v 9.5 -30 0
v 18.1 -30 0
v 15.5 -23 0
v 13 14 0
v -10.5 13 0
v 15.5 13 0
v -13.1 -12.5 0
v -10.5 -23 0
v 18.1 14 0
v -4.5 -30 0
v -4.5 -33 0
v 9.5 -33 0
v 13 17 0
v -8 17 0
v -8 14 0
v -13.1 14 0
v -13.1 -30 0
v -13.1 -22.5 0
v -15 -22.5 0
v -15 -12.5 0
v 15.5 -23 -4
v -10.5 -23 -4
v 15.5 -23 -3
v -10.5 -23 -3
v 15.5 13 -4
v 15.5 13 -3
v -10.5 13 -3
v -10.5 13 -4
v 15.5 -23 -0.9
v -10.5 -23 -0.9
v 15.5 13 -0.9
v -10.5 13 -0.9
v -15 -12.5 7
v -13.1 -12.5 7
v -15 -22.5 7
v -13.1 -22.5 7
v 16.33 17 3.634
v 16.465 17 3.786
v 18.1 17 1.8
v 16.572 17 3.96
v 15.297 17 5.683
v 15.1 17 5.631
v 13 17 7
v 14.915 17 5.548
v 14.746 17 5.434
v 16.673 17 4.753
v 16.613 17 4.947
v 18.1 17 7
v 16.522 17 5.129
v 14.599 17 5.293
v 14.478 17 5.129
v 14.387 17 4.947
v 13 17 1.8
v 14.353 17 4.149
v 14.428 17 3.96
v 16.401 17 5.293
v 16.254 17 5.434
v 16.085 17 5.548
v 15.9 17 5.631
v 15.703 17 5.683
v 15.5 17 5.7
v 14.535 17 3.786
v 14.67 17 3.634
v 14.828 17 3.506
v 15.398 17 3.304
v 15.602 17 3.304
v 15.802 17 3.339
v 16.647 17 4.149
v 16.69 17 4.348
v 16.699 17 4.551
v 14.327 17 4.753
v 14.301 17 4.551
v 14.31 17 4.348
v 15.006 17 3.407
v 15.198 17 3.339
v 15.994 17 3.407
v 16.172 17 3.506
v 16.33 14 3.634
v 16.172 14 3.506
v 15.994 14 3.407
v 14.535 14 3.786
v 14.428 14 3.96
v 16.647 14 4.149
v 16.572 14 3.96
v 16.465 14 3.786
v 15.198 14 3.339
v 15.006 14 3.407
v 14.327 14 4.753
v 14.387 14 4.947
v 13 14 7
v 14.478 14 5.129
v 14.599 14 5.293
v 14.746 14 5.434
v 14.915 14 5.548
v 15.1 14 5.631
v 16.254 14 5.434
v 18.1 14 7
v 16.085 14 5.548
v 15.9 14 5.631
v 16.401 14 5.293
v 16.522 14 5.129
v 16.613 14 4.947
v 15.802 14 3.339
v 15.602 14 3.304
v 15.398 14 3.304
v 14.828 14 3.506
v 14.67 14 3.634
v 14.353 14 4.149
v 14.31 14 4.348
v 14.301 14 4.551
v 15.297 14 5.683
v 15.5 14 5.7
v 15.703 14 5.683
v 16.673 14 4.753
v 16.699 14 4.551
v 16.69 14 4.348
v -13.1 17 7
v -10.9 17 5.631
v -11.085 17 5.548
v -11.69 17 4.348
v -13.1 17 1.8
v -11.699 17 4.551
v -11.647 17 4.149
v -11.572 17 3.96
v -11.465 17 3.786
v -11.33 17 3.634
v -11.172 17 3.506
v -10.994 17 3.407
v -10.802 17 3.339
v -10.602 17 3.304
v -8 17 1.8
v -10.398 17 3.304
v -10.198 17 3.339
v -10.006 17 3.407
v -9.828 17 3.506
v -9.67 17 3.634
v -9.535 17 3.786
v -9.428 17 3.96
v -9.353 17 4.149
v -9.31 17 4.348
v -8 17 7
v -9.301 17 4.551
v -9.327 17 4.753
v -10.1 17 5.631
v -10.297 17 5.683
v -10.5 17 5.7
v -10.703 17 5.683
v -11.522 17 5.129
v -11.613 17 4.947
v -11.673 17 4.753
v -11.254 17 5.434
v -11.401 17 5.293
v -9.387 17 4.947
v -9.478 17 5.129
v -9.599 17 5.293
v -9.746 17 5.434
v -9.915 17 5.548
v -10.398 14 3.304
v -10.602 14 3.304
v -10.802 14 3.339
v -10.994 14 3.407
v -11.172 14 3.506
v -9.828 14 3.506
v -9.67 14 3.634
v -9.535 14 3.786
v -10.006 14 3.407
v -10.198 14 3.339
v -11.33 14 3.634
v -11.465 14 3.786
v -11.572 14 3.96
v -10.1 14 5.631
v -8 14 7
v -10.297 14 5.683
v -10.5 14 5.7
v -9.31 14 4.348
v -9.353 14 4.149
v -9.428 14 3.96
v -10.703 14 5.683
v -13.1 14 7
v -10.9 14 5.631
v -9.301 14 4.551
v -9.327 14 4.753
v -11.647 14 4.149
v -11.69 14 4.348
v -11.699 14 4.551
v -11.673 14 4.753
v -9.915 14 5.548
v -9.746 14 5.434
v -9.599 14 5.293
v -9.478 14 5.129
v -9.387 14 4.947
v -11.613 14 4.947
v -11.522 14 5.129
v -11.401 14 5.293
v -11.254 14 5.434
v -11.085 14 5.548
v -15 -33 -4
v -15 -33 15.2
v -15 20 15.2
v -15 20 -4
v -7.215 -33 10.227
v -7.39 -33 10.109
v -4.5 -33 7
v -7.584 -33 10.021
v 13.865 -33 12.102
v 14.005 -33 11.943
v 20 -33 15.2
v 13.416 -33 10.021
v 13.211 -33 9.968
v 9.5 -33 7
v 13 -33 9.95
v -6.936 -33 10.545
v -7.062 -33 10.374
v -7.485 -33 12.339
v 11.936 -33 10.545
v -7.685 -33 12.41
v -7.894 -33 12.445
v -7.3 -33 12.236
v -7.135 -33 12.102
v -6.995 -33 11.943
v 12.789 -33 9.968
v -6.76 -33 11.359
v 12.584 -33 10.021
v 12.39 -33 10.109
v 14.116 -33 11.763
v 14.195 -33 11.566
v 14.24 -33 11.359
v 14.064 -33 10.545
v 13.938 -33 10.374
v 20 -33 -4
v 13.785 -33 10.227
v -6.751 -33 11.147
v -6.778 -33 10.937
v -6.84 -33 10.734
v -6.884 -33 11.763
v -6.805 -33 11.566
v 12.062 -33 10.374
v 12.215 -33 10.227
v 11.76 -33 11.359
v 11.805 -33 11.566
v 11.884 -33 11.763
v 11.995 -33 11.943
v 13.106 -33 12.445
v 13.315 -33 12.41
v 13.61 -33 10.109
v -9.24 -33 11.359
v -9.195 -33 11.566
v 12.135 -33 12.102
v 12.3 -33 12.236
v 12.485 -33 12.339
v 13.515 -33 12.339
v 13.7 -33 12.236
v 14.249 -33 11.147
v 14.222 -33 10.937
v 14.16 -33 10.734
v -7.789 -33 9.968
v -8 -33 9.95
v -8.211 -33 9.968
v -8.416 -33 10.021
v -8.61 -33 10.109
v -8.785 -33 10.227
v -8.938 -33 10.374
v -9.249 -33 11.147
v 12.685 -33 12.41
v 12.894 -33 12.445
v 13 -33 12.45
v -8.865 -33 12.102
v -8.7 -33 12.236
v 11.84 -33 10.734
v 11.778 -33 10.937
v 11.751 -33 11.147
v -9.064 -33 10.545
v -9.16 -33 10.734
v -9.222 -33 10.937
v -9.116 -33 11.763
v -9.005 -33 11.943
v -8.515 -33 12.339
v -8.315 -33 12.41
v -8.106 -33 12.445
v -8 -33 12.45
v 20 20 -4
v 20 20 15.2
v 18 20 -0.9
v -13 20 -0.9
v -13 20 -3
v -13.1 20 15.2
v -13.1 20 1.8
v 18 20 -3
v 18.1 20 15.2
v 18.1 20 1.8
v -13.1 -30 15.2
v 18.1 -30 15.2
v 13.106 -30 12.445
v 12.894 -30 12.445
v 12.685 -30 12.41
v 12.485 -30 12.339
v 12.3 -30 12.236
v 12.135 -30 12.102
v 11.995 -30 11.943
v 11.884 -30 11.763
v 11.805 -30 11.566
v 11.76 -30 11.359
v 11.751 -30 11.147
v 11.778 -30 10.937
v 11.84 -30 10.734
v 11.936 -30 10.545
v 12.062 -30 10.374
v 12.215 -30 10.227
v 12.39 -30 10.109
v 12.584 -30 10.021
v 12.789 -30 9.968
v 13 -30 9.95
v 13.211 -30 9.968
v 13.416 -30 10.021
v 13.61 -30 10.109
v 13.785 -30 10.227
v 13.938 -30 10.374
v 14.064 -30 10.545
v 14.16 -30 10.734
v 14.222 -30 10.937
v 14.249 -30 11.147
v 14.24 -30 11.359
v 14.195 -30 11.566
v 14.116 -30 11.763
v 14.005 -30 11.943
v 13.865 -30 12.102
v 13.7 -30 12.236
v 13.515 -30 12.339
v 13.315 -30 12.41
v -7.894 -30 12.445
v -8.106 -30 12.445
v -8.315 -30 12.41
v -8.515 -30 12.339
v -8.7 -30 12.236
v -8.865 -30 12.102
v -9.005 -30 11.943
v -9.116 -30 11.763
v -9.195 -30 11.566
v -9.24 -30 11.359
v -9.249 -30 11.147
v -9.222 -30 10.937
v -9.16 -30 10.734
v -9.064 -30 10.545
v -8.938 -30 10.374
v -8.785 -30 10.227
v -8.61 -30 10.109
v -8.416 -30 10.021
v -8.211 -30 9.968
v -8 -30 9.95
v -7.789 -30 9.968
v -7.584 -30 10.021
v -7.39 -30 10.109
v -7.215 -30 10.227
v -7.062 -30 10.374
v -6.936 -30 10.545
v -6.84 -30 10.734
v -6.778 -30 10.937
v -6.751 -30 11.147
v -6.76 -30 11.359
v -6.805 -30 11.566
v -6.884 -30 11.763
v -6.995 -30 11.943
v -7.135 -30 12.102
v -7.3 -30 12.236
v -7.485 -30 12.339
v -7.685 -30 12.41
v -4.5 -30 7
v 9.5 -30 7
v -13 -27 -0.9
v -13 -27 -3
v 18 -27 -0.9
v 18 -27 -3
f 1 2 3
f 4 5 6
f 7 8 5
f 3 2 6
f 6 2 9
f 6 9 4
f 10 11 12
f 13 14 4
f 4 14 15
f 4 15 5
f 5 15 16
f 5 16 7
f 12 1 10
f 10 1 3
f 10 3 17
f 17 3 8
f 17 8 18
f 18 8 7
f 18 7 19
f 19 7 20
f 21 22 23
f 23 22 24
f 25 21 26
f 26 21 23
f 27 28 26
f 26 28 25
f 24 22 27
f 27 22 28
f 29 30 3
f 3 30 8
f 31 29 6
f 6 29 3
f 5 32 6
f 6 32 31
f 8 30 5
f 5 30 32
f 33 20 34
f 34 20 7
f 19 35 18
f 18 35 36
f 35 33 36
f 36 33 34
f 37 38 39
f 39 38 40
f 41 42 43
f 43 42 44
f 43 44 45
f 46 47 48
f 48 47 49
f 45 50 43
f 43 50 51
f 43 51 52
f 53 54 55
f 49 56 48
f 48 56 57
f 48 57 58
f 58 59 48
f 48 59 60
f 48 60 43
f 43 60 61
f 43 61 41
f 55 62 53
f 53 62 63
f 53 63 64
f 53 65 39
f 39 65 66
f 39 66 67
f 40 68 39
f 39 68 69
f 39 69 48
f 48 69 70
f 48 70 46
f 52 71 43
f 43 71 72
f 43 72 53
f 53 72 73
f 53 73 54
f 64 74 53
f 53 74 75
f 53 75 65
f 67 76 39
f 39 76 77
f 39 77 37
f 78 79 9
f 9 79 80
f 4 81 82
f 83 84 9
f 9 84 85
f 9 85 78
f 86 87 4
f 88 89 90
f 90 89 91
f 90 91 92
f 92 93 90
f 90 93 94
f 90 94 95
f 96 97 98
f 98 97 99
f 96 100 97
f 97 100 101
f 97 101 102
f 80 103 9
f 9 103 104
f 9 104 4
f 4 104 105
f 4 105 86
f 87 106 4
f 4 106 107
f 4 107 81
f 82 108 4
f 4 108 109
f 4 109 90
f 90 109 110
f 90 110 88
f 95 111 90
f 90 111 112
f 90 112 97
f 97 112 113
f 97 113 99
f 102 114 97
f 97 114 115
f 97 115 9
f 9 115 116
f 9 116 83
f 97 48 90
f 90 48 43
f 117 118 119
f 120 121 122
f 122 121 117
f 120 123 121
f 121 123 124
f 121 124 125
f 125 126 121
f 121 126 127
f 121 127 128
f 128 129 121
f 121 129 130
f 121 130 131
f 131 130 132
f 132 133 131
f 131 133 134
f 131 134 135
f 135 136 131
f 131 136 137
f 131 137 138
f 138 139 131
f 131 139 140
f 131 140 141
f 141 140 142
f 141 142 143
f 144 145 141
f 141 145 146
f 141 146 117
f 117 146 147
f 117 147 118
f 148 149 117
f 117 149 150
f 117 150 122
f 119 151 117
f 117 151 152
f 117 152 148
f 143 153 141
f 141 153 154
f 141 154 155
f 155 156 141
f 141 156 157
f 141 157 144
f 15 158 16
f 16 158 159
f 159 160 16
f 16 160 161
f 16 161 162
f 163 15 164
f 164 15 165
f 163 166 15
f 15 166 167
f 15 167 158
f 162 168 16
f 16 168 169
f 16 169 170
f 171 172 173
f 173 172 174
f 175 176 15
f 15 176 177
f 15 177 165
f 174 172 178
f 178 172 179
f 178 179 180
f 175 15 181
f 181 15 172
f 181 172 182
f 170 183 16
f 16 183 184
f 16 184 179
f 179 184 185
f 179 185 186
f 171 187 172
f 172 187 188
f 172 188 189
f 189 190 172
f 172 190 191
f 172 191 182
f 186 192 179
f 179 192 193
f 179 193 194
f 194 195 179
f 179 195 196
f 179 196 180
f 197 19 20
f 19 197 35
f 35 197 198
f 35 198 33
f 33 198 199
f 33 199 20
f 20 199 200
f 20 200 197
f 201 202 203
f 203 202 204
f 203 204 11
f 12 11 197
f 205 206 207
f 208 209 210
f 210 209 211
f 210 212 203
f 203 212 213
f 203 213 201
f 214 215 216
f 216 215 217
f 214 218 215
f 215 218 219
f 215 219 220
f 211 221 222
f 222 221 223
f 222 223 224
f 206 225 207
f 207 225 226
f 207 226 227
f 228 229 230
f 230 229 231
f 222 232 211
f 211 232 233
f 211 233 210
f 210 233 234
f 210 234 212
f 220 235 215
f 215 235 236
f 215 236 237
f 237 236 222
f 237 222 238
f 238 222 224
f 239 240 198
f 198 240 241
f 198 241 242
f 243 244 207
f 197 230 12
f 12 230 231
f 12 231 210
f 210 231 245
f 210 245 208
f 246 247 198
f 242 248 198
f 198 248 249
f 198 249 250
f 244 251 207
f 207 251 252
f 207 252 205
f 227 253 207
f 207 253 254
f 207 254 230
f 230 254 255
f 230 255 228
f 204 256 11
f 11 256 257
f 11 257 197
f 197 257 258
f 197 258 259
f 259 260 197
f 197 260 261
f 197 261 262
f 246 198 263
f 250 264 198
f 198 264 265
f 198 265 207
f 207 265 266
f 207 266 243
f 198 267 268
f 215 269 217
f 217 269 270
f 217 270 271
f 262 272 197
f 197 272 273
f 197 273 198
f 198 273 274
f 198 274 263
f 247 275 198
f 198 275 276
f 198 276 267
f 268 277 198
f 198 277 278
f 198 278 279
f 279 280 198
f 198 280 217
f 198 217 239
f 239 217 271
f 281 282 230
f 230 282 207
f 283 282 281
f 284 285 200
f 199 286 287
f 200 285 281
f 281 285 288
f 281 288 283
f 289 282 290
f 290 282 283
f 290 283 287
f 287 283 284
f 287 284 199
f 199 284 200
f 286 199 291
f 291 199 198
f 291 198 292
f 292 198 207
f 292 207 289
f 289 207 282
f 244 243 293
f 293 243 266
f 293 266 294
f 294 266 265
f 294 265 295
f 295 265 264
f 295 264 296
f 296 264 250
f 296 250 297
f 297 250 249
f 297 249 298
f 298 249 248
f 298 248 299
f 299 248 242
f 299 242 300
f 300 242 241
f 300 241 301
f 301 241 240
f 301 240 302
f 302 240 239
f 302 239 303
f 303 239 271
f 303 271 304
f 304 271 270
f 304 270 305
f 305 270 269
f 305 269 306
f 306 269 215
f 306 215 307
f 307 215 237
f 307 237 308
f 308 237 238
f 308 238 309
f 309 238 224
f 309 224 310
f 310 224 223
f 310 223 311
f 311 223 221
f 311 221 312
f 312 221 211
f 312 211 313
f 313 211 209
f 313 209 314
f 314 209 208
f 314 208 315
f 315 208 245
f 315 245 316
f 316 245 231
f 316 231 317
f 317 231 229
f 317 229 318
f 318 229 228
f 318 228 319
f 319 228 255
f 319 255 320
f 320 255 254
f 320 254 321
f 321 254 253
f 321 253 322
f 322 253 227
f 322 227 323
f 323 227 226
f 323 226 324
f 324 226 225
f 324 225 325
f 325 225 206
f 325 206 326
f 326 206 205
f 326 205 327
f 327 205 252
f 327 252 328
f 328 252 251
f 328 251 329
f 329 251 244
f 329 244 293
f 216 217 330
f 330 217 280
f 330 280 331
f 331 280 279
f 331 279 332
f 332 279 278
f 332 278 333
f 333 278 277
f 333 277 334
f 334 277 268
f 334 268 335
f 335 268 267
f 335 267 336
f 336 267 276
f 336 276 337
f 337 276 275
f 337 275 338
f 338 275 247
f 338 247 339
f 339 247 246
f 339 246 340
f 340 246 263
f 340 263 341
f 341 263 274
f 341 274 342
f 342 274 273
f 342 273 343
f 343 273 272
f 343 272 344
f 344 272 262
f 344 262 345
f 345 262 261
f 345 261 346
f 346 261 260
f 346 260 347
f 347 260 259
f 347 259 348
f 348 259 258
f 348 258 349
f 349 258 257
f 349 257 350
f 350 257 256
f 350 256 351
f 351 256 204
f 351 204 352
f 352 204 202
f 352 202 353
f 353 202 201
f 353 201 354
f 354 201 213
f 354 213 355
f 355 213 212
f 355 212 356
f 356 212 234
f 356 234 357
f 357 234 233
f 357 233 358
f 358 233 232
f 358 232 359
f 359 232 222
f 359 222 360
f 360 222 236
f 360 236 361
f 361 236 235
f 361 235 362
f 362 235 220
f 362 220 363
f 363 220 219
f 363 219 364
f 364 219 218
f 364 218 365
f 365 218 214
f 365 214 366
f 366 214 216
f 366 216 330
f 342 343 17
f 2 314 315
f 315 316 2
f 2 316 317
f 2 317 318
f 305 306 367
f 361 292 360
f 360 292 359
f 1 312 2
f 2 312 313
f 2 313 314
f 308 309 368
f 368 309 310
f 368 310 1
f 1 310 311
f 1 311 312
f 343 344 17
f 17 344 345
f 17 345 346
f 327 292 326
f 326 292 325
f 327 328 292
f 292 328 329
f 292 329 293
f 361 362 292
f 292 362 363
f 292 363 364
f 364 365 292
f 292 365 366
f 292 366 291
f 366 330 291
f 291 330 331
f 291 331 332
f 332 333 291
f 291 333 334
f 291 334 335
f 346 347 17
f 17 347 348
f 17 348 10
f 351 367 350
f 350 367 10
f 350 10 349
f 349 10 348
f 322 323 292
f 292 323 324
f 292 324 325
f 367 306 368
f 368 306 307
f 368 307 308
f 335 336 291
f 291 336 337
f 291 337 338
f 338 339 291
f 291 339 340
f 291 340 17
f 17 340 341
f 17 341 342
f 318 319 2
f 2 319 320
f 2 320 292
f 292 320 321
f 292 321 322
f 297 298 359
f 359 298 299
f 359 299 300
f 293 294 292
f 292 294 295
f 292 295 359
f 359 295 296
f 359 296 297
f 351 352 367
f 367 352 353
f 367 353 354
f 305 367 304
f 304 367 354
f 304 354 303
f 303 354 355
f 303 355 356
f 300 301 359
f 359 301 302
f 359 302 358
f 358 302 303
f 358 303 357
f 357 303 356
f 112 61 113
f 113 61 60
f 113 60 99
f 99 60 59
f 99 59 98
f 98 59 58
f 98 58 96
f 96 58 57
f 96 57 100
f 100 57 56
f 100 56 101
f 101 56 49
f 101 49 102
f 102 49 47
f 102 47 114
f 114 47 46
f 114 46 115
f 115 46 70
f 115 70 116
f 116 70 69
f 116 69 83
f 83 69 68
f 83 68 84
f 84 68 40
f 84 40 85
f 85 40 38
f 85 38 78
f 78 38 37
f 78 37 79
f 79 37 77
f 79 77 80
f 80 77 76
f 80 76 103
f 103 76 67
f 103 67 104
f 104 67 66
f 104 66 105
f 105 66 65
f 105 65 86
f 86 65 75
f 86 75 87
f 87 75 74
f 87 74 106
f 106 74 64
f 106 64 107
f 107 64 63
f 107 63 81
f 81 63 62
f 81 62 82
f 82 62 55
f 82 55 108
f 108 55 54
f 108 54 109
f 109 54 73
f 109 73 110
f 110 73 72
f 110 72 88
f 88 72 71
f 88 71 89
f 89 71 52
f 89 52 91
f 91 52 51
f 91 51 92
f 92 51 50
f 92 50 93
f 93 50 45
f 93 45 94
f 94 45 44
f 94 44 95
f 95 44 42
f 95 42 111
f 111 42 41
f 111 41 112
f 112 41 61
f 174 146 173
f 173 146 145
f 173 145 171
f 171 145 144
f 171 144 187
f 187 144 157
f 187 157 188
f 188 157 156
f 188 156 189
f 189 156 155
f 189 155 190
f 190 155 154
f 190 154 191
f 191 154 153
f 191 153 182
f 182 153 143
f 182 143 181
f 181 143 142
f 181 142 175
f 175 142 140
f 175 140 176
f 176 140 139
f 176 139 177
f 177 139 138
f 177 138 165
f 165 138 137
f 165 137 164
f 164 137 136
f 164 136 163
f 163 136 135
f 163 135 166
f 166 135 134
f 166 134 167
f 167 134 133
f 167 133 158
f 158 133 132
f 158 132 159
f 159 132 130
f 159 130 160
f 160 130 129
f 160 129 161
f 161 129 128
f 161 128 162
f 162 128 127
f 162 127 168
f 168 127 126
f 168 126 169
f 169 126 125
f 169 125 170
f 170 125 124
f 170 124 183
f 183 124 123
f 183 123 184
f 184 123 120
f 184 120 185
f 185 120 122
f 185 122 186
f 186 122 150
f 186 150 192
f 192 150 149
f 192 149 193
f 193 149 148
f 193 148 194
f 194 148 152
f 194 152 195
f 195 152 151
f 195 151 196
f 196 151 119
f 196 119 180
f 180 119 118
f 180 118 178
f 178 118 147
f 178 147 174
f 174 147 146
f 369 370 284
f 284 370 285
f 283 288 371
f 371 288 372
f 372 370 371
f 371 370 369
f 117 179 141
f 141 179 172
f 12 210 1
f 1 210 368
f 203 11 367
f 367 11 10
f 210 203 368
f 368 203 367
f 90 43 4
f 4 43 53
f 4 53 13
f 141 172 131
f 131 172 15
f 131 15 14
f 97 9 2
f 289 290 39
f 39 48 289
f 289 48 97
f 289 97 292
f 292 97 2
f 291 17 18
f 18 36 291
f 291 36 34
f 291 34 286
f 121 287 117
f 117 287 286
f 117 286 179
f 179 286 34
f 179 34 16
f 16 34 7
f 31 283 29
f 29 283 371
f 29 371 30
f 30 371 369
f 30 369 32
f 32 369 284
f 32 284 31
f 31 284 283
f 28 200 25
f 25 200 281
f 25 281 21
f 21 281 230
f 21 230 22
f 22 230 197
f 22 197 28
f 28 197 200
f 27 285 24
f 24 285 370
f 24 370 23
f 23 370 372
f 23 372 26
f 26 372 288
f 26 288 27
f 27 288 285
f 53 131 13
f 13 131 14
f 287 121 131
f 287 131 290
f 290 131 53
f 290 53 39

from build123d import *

# Parameters (mm, degrees)
SKETCH_1_W           = 35
SKETCH_1_H           = 53
EXTRUDE_1_DEPTH      = 2
SKETCH_2_W           = 2
SKETCH_2_H           = 53
EXTRUDE_2_DEPTH      = 13.2
SKETCH_3_W           = 31
SKETCH_3_H           = 3
EXTRUDE_3_DEPTH      = 7.2
SKETCH_4_W           = 31
SKETCH_4_H           = 3
EXTRUDE_4_DEPTH      = 13.2
CUT_EXTRUDE_1_REACH  = 57.956
SKETCH_5_R           = 1.25
SKETCH_7_W           = 31
SKETCH_7_H           = 3
CUT_EXTRUDE_2_DEPTH  = 2.2
SKETCH_8_W           = 31
SKETCH_8_H           = 3
CUT_EXTRUDE_3_DEPTH  = 2
SKETCH_10_W          = 11
SKETCH_10_H          = 3
CUT_EXTRUDE_4_DEPTH  = 4
CUT_EXTRUDE_START    = -3
SKETCH_9_R           = 1.25
CUT_EXTRUDE_5_DEPTH  = 3
SKETCH_14_W          = 31
SKETCH_14_H          = 3
CUT_EXTRUDE_8_DEPTH  = 5
SKETCH_15_W          = 35
SKETCH_15_H          = 53
SKETCH_15_W_2        = 26
SKETCH_15_H_2        = 36
EXTRUDE_5_DEPTH      = 1
SKETCH_15_3_W        = 26
SKETCH_15_3_H        = 36
CUT_EXTRUDE_9_DEPTH  = 2
SKETCH_15_4_W        = 35
SKETCH_15_4_H        = 53
SKETCH_15_4_W_2      = 26
SKETCH_15_4_H_2      = 36
EXTRUDE_6_DEPTH      = 1
SKETCH_14_2_W        = 31
SKETCH_14_2_H        = 3
CUT_EXTRUDE_10_DEPTH = 7.2
SKETCH_21_W          = 31
SKETCH_21_H          = 3
CUT_EXTRUDE_11_DEPTH = 4
SKETCH_9_6_W         = 31
SKETCH_9_6_H         = 4
SKETCH_9_6_R         = 1.25
EXTRUDE_8_DEPTH      = 3
SKETCH_9_7_W         = 31
SKETCH_9_7_H         = 4
SKETCH_9_7_R         = 1.25
CUT_EXTRUDE_12_DEPTH = 3
SKETCH_23_W          = 31
SKETCH_23_H          = 3
EXTRUDE_9_DEPTH      = 2
SKETCH_24_W          = 31
SKETCH_24_H          = 3
CUT_EXTRUDE_13_DEPTH = 7.2
SKETCH_25_R          = 1.2
CUT_EXTRUDE_14_DEPTH = 3
SKETCH_15_5_W        = 35
SKETCH_15_5_H        = 53
SKETCH_15_5_W_2      = 26
SKETCH_15_5_H_2      = 36
EXTRUDE_10_DEPTH     = 2
SKETCH_28_W          = 31
SKETCH_28_H          = 2.1
CUT_EXTRUDE_15_DEPTH = 47
SKETCH_21_2_W        = 31
SKETCH_21_2_H        = 3
CUT_EXTRUDE_16_DEPTH = 6
SKETCH_12_W          = 2
SKETCH_12_H          = 10
CUT_EXTRUDE_17_DEPTH = 13.2
SKETCH_12_2_W        = 2
SKETCH_12_2_H        = 10
EXTRUDE_11_DEPTH     = 8.2
SKETCH_33_W          = 14
SKETCH_33_H          = 5
CUT_EXTRUDE_18_DEPTH = 3
SKETCH_34_W          = 21
SKETCH_34_H          = 3
CUT_EXTRUDE_19_DEPTH = 5
CUT_EXTRUDE_20_DEPTH = 0.1
CUT_EXTRUDE_21_DEPTH = 0.1
SKETCH_38_W          = 31
SKETCH_38_H          = 47
SKETCH_38_W_2        = 26
SKETCH_38_H_2        = 36
EXTRUDE_12_DEPTH     = 2
SKETCH_39_W          = 26
SKETCH_39_H          = 36
CUT_EXTRUDE_22_DEPTH = 2
SKETCH_40_W          = 35
SKETCH_40_H          = 53
SKETCH_40_W_2        = 26
SKETCH_40_H_2        = 36
EXTRUDE_13_DEPTH     = 2
SKETCH_41_W          = 31
SKETCH_41_H          = 47
SKETCH_41_W_2        = 26
SKETCH_41_H_2        = 36
CUT_EXTRUDE_23_DEPTH = 2
EXTRUDE_14_DEPTH     = 1.8


with BuildPart() as part:
    # 草图1 → 凸台-拉伸1 (new body)
    with BuildSketch(Plane.XY):
        with Locations((2.5, -6.5)):
            Rectangle(SKETCH_1_W, SKETCH_1_H)
    extrude(amount=EXTRUDE_1_DEPTH)

    # 草图2 → 凸台-拉伸2 (add)
    with BuildSketch(Plane.XY.offset(2)):
        with Locations((-14, -6.5)):
            Rectangle(SKETCH_2_W, SKETCH_2_H)
        with Locations((19, -6.5)):
            Rectangle(SKETCH_2_W, SKETCH_2_H)
    extrude(amount=EXTRUDE_2_DEPTH)

    # 草图3 → 凸台-拉伸3 (add)
    with BuildSketch(Plane.XY.offset(2)):
        with Locations((2.5, 18.5)):
            Rectangle(SKETCH_3_W, SKETCH_3_H)
        with Locations((2.5, -31.5)):
            Rectangle(SKETCH_3_W, SKETCH_3_H)
    extrude(amount=EXTRUDE_3_DEPTH)

    # 草图4 → 凸台-拉伸4 (add)
    with BuildSketch(Plane.XY.offset(2)):
        with Locations((2.5, 15.5)):
            Rectangle(SKETCH_4_W, SKETCH_4_H)
        with Locations((2.5, -28.5)):
            Rectangle(SKETCH_4_W, SKETCH_4_H)
    extrude(amount=EXTRUDE_4_DEPTH)

    # 草图5 → 切除-拉伸1 (cut, up to next)
    with BuildSketch(Plane(origin=(0, 17, 0), x_dir=(1, 0, 0), z_dir=(0, 1, 0)), mode=Mode.PRIVATE) as cut_extrude_1_sk1:
        with Locations(Location((-8, -11.2, 0), (0, 0, 270))):
            Circle(SKETCH_5_R)
    cut_extrude_1_tool1 = extrude(cut_extrude_1_sk1.sketch, amount=-CUT_EXTRUDE_1_REACH, mode=Mode.PRIVATE) & part.part
    # 草图5 → 切除-拉伸1 (cut, up to next)
    with BuildSketch(Plane(origin=(0, 17, 0), x_dir=(1, 0, 0), z_dir=(0, 1, 0)), mode=Mode.PRIVATE) as cut_extrude_1_sk2:
        with Locations(Location((2.5, -11.2, 0), (0, 0, 270))):
            Circle(SKETCH_5_R)
    cut_extrude_1_tool2 = extrude(cut_extrude_1_sk2.sketch, amount=-CUT_EXTRUDE_1_REACH, mode=Mode.PRIVATE) & part.part
    # 草图5 → 切除-拉伸1 (cut, up to next)
    with BuildSketch(Plane(origin=(0, 17, 0), x_dir=(1, 0, 0), z_dir=(0, 1, 0)), mode=Mode.PRIVATE) as cut_extrude_1_sk3:
        with Locations(Location((13, -11.2, 0), (0, 0, 270))):
            Circle(SKETCH_5_R)
    cut_extrude_1_tool3 = extrude(cut_extrude_1_sk3.sketch, amount=-CUT_EXTRUDE_1_REACH, mode=Mode.PRIVATE) & part.part
    add(cut_extrude_1_tool1.solids().sort_by_distance((-8, 17, 11.2))[0], mode=Mode.SUBTRACT)
    add(cut_extrude_1_tool2.solids().sort_by_distance((2.5, 17, 11.2))[0], mode=Mode.SUBTRACT)
    add(cut_extrude_1_tool3.solids().sort_by_distance((13, 17, 11.2))[0], mode=Mode.SUBTRACT)

    # 草图7 → 切除-拉伸2 (cut)
    with BuildSketch(Plane.XY.offset(15.2)):
        with Locations((2.5, 15.5)):
            Rectangle(SKETCH_7_W, SKETCH_7_H)
    extrude(amount=-CUT_EXTRUDE_2_DEPTH, mode=Mode.SUBTRACT)

    # 草图8 → 切除-拉伸3 (cut)
    with BuildSketch(Plane.XY.offset(15.2)):
        with Locations((2.5, -28.5)):
            Rectangle(SKETCH_8_W, SKETCH_8_H)
    extrude(amount=-CUT_EXTRUDE_3_DEPTH, mode=Mode.SUBTRACT)

    # 草图10 → 切除-拉伸4 (cut)
    with BuildSketch(Plane.XY.offset(13.2)):
        with Locations((2.5, -28.5)):
            Rectangle(SKETCH_10_W, SKETCH_10_H)
    extrude(amount=-CUT_EXTRUDE_4_DEPTH, mode=Mode.SUBTRACT)

    # 草图9 → 切除-拉伸5 (cut)
    with BuildSketch(Plane.XZ.offset(30).offset(CUT_EXTRUDE_START)):
        with Locations(Location((-8, 11.2, 0), (0, 0, 90))):
            Circle(SKETCH_9_R)
        with Locations(Location((13, 11.2, 0), (0, 0, 90))):
            Circle(SKETCH_9_R)
    extrude(amount=CUT_EXTRUDE_5_DEPTH, mode=Mode.SUBTRACT)

    # 草图14 → 切除-拉伸8 (cut)
    with BuildSketch(Plane.XY.offset(9.2)):
        with Locations((2.5, 18.5)):
            Rectangle(SKETCH_14_W, SKETCH_14_H)
    extrude(amount=-CUT_EXTRUDE_8_DEPTH, mode=Mode.SUBTRACT)

    # 草图15 → 凸台-拉伸5 (add)
    with BuildSketch(Plane(origin=(0, 0, 0), x_dir=(-1, 0, 0), z_dir=(0, 0, -1))):
        with Locations((-2.5, -6.5)):
            Rectangle(SKETCH_15_W, SKETCH_15_H)
        with Locations((-2.5, -5)):
            Rectangle(SKETCH_15_W_2, SKETCH_15_H_2, mode=Mode.SUBTRACT)
    extrude(amount=EXTRUDE_5_DEPTH)

    # 草图15<3> → 切除-拉伸9 (cut)
    with BuildSketch(Plane(origin=(0, 0, 0), x_dir=(-1, 0, 0), z_dir=(0, 0, -1))):
        with Locations((-2.5, -5)):
            Rectangle(SKETCH_15_3_W, SKETCH_15_3_H)
    extrude(amount=-CUT_EXTRUDE_9_DEPTH, mode=Mode.SUBTRACT)

    # 草图15<4> → 凸台-拉伸6 (add)
    with BuildSketch(Plane(origin=(0, 0, 0), x_dir=(-1, 0, 0), z_dir=(0, 0, -1))):
        with Locations((-2.5, -6.5)):
            Rectangle(SKETCH_15_4_W, SKETCH_15_4_H)
        with Locations((-2.5, -5)):
            Rectangle(SKETCH_15_4_W_2, SKETCH_15_4_H_2, mode=Mode.SUBTRACT)
    extrude(amount=EXTRUDE_6_DEPTH)

    # 草图14<2> → 切除-拉伸10 (cut)
    with BuildSketch(Plane.XY.offset(9.2)):
        with Locations((2.5, 18.5)):
            Rectangle(SKETCH_14_2_W, SKETCH_14_2_H)
    extrude(amount=-CUT_EXTRUDE_10_DEPTH, mode=Mode.SUBTRACT)

    # 草图21 → 切除-拉伸11 (cut)
    with BuildSketch(Plane.XY.offset(13)):
        with Locations((2.5, 15.5)):
            Rectangle(SKETCH_21_W, SKETCH_21_H)
    extrude(amount=-CUT_EXTRUDE_11_DEPTH, mode=Mode.SUBTRACT)

    # 草图9<6> → 凸台-拉伸8 (add)
    with BuildSketch(Plane.XZ.offset(30)):
        with Locations((2.5, 11.2)):
            Rectangle(SKETCH_9_6_W, SKETCH_9_6_H)
        with Locations((13, 11.2)):
            Circle(SKETCH_9_6_R, mode=Mode.SUBTRACT)
        with Locations((-8, 11.2)):
            Circle(SKETCH_9_6_R, mode=Mode.SUBTRACT)
    extrude(amount=EXTRUDE_8_DEPTH)

    # 草图9<7> → 切除-拉伸12 (cut)
    with BuildSketch(Plane.XZ.offset(30).offset(CUT_EXTRUDE_START)):
        with Locations((2.5, 11.2)):
            Rectangle(SKETCH_9_7_W, SKETCH_9_7_H)
        with Locations(Location((13, 11.2, 0), (0, 0, 270))):
            Circle(SKETCH_9_7_R, mode=Mode.SUBTRACT)
        with Locations(Location((-8, 11.2, 0), (0, 0, 270))):
            Circle(SKETCH_9_7_R, mode=Mode.SUBTRACT)
    extrude(amount=CUT_EXTRUDE_12_DEPTH, mode=Mode.SUBTRACT)

    # 草图23 → 凸台-拉伸9 (add)
    with BuildSketch(Plane.XY.offset(13.2)):
        with Locations((2.5, -31.5)):
            Rectangle(SKETCH_23_W, SKETCH_23_H)
    extrude(amount=EXTRUDE_9_DEPTH)

    # 草图24 → 切除-拉伸13 (cut)
    with BuildSketch(Plane.XY.offset(9.2)):
        with Locations((2.5, -28.5)):
            Rectangle(SKETCH_24_W, SKETCH_24_H)
    extrude(amount=-CUT_EXTRUDE_13_DEPTH, mode=Mode.SUBTRACT)

    # 草图25 → 切除-拉伸14 (cut)
    with BuildSketch(Plane(origin=(0, 17, 0), x_dir=(1, 0, 0), z_dir=(0, 1, 0))):
        with Locations(Location((-10.5, -4.5, 0), (0, 0, 270))):
            Circle(SKETCH_25_R)
        with Locations(Location((15.5, -4.5, 0), (0, 0, 270))):
            Circle(SKETCH_25_R)
    extrude(amount=-CUT_EXTRUDE_14_DEPTH, mode=Mode.SUBTRACT)

    # 草图15<5> → 凸台-拉伸10 (add)
    with BuildSketch(Plane(origin=(0, 0, 0), x_dir=(-1, 0, 0), z_dir=(0, 0, -1))):
        with Locations((-2.5, -6.5)):
            Rectangle(SKETCH_15_5_W, SKETCH_15_5_H)
        with Locations((-2.5, -5)):
            Rectangle(SKETCH_15_5_W_2, SKETCH_15_5_H_2, mode=Mode.SUBTRACT)
    extrude(amount=EXTRUDE_10_DEPTH)

    # 草图28 → 切除-拉伸15 (cut)
    with BuildSketch(Plane(origin=(0, 20, 0), x_dir=(1, 0, 0), z_dir=(0, 1, 0))):
        with Locations((2.5, -0.05)):
            Rectangle(SKETCH_28_W, SKETCH_28_H)
    extrude(amount=-CUT_EXTRUDE_15_DEPTH, mode=Mode.SUBTRACT)

    # 草图21<2> → 切除-拉伸16 (cut)
    with BuildSketch(Plane.XY.offset(13)):
        with Locations((2.5, 15.5)):
            Rectangle(SKETCH_21_2_W, SKETCH_21_2_H)
    extrude(amount=-CUT_EXTRUDE_16_DEPTH, mode=Mode.SUBTRACT)

    # 草图12 → 切除-拉伸17 (cut)
    with BuildSketch(Plane.XY.offset(15.2)):
        with Locations((-14, -17.5)):
            Rectangle(SKETCH_12_W, SKETCH_12_H)
    extrude(amount=-CUT_EXTRUDE_17_DEPTH, mode=Mode.SUBTRACT)

    # 草图12<2> → 凸台-拉伸11 (add)
    with BuildSketch(Plane.XY.offset(15.2)):
        with Locations((-14, -17.5)):
            Rectangle(SKETCH_12_2_W, SKETCH_12_2_H)
    extrude(amount=-EXTRUDE_11_DEPTH)

    # 草图33 → 切除-拉伸18 (cut)
    with BuildSketch(Plane.XZ.offset(33)):
        with Locations((2.5, 4.5)):
            Rectangle(SKETCH_33_W, SKETCH_33_H)
    extrude(amount=-CUT_EXTRUDE_18_DEPTH, mode=Mode.SUBTRACT)

    # 草图34 → 切除-拉伸19 (cut)
    with BuildSketch(Plane.XY.offset(7)):
        with Locations((2.5, 15.5)):
            Rectangle(SKETCH_34_W, SKETCH_34_H)
    extrude(amount=-CUT_EXTRUDE_19_DEPTH, mode=Mode.SUBTRACT)

    # 草图35 → 切除-拉伸20 (cut)
    with BuildSketch(Plane.ZY.offset(-18)):
        Polygon((2, 20), (2, 17), (7, 17), (7, 14), (2, 14), (2, -30), (15.2, -30), (15.2, 20), align=None)
    extrude(amount=-CUT_EXTRUDE_20_DEPTH, mode=Mode.SUBTRACT)

    # 草图36 → 切除-拉伸21 (cut)
    with BuildSketch(Plane(origin=(-13, 0, 0), x_dir=(0, 0, -1), z_dir=(1, 0, 0))):
        Polygon((-15.2, -30), (-2, -30), (-2, -22.5), (-7, -22.5), (-7, -12.5), (-2, -12.5), (-2, 14), (-7, 14), (-7, 17), (-2, 17), (-2, 20), (-15.2, 20), align=None)
    extrude(amount=-CUT_EXTRUDE_21_DEPTH, mode=Mode.SUBTRACT)

    # 草图38 → 凸台-拉伸12 (add)
    with BuildSketch(Plane(origin=(0, 0, 1.1), x_dir=(-1, 0, 0), z_dir=(0, 0, -1))):
        with Locations((-2.5, -3.5)):
            Rectangle(SKETCH_38_W, SKETCH_38_H)
        with Locations((-2.5, -5)):
            Rectangle(SKETCH_38_W_2, SKETCH_38_H_2, mode=Mode.SUBTRACT)
    extrude(amount=EXTRUDE_12_DEPTH)

    # 草图39 → 切除-拉伸22 (cut)
    with BuildSketch(Plane.XY.offset(2)):
        Polygon((-15, -12.5), (-15, -22.5), (-13.1, -22.5), (-13.1, -30), (-4.5, -30), (-4.5, -33), (9.5, -33), (9.5, -30), (18.1, -30), (18.1, 14), (13, 14), (13, 17), (18.1, 17), (18.1, 20), (-13.1, 20), (-13.1, 17), (-8, 17), (-8, 14), (-13.1, 14), (-13.1, -12.5), align=None)
        with Locations((2.5, -5)):
            Rectangle(SKETCH_39_W, SKETCH_39_H, mode=Mode.SUBTRACT)
    extrude(amount=-CUT_EXTRUDE_22_DEPTH, mode=Mode.SUBTRACT)

    # 草图40 → 凸台-拉伸13 (add)
    with BuildSketch(Plane(origin=(0, 0, -2), x_dir=(-1, 0, 0), z_dir=(0, 0, -1))):
        with Locations((-2.5, -6.5)):
            Rectangle(SKETCH_40_W, SKETCH_40_H)
        with Locations((-2.5, -5)):
            Rectangle(SKETCH_40_W_2, SKETCH_40_H_2, mode=Mode.SUBTRACT)
    extrude(amount=EXTRUDE_13_DEPTH)

    # 草图41 → 切除-拉伸23 (cut)
    with BuildSketch(Plane.XY.offset(-1)):
        with Locations((2.5, -3.5)):
            Rectangle(SKETCH_41_W, SKETCH_41_H)
        with Locations((2.5, -5)):
            Rectangle(SKETCH_41_W_2, SKETCH_41_H_2, mode=Mode.SUBTRACT)
    extrude(amount=-CUT_EXTRUDE_23_DEPTH, mode=Mode.SUBTRACT)

    # 草图42 → 凸台-拉伸14 (add)
    with BuildSketch(Plane.XY):
        Polygon((-8, 17), (13, 17), (18.1, 17), (18.1, 20), (-13.1, 20), (-13.1, 17), align=None)
    extrude(amount=EXTRUDE_14_DEPTH)


solid = part.part
